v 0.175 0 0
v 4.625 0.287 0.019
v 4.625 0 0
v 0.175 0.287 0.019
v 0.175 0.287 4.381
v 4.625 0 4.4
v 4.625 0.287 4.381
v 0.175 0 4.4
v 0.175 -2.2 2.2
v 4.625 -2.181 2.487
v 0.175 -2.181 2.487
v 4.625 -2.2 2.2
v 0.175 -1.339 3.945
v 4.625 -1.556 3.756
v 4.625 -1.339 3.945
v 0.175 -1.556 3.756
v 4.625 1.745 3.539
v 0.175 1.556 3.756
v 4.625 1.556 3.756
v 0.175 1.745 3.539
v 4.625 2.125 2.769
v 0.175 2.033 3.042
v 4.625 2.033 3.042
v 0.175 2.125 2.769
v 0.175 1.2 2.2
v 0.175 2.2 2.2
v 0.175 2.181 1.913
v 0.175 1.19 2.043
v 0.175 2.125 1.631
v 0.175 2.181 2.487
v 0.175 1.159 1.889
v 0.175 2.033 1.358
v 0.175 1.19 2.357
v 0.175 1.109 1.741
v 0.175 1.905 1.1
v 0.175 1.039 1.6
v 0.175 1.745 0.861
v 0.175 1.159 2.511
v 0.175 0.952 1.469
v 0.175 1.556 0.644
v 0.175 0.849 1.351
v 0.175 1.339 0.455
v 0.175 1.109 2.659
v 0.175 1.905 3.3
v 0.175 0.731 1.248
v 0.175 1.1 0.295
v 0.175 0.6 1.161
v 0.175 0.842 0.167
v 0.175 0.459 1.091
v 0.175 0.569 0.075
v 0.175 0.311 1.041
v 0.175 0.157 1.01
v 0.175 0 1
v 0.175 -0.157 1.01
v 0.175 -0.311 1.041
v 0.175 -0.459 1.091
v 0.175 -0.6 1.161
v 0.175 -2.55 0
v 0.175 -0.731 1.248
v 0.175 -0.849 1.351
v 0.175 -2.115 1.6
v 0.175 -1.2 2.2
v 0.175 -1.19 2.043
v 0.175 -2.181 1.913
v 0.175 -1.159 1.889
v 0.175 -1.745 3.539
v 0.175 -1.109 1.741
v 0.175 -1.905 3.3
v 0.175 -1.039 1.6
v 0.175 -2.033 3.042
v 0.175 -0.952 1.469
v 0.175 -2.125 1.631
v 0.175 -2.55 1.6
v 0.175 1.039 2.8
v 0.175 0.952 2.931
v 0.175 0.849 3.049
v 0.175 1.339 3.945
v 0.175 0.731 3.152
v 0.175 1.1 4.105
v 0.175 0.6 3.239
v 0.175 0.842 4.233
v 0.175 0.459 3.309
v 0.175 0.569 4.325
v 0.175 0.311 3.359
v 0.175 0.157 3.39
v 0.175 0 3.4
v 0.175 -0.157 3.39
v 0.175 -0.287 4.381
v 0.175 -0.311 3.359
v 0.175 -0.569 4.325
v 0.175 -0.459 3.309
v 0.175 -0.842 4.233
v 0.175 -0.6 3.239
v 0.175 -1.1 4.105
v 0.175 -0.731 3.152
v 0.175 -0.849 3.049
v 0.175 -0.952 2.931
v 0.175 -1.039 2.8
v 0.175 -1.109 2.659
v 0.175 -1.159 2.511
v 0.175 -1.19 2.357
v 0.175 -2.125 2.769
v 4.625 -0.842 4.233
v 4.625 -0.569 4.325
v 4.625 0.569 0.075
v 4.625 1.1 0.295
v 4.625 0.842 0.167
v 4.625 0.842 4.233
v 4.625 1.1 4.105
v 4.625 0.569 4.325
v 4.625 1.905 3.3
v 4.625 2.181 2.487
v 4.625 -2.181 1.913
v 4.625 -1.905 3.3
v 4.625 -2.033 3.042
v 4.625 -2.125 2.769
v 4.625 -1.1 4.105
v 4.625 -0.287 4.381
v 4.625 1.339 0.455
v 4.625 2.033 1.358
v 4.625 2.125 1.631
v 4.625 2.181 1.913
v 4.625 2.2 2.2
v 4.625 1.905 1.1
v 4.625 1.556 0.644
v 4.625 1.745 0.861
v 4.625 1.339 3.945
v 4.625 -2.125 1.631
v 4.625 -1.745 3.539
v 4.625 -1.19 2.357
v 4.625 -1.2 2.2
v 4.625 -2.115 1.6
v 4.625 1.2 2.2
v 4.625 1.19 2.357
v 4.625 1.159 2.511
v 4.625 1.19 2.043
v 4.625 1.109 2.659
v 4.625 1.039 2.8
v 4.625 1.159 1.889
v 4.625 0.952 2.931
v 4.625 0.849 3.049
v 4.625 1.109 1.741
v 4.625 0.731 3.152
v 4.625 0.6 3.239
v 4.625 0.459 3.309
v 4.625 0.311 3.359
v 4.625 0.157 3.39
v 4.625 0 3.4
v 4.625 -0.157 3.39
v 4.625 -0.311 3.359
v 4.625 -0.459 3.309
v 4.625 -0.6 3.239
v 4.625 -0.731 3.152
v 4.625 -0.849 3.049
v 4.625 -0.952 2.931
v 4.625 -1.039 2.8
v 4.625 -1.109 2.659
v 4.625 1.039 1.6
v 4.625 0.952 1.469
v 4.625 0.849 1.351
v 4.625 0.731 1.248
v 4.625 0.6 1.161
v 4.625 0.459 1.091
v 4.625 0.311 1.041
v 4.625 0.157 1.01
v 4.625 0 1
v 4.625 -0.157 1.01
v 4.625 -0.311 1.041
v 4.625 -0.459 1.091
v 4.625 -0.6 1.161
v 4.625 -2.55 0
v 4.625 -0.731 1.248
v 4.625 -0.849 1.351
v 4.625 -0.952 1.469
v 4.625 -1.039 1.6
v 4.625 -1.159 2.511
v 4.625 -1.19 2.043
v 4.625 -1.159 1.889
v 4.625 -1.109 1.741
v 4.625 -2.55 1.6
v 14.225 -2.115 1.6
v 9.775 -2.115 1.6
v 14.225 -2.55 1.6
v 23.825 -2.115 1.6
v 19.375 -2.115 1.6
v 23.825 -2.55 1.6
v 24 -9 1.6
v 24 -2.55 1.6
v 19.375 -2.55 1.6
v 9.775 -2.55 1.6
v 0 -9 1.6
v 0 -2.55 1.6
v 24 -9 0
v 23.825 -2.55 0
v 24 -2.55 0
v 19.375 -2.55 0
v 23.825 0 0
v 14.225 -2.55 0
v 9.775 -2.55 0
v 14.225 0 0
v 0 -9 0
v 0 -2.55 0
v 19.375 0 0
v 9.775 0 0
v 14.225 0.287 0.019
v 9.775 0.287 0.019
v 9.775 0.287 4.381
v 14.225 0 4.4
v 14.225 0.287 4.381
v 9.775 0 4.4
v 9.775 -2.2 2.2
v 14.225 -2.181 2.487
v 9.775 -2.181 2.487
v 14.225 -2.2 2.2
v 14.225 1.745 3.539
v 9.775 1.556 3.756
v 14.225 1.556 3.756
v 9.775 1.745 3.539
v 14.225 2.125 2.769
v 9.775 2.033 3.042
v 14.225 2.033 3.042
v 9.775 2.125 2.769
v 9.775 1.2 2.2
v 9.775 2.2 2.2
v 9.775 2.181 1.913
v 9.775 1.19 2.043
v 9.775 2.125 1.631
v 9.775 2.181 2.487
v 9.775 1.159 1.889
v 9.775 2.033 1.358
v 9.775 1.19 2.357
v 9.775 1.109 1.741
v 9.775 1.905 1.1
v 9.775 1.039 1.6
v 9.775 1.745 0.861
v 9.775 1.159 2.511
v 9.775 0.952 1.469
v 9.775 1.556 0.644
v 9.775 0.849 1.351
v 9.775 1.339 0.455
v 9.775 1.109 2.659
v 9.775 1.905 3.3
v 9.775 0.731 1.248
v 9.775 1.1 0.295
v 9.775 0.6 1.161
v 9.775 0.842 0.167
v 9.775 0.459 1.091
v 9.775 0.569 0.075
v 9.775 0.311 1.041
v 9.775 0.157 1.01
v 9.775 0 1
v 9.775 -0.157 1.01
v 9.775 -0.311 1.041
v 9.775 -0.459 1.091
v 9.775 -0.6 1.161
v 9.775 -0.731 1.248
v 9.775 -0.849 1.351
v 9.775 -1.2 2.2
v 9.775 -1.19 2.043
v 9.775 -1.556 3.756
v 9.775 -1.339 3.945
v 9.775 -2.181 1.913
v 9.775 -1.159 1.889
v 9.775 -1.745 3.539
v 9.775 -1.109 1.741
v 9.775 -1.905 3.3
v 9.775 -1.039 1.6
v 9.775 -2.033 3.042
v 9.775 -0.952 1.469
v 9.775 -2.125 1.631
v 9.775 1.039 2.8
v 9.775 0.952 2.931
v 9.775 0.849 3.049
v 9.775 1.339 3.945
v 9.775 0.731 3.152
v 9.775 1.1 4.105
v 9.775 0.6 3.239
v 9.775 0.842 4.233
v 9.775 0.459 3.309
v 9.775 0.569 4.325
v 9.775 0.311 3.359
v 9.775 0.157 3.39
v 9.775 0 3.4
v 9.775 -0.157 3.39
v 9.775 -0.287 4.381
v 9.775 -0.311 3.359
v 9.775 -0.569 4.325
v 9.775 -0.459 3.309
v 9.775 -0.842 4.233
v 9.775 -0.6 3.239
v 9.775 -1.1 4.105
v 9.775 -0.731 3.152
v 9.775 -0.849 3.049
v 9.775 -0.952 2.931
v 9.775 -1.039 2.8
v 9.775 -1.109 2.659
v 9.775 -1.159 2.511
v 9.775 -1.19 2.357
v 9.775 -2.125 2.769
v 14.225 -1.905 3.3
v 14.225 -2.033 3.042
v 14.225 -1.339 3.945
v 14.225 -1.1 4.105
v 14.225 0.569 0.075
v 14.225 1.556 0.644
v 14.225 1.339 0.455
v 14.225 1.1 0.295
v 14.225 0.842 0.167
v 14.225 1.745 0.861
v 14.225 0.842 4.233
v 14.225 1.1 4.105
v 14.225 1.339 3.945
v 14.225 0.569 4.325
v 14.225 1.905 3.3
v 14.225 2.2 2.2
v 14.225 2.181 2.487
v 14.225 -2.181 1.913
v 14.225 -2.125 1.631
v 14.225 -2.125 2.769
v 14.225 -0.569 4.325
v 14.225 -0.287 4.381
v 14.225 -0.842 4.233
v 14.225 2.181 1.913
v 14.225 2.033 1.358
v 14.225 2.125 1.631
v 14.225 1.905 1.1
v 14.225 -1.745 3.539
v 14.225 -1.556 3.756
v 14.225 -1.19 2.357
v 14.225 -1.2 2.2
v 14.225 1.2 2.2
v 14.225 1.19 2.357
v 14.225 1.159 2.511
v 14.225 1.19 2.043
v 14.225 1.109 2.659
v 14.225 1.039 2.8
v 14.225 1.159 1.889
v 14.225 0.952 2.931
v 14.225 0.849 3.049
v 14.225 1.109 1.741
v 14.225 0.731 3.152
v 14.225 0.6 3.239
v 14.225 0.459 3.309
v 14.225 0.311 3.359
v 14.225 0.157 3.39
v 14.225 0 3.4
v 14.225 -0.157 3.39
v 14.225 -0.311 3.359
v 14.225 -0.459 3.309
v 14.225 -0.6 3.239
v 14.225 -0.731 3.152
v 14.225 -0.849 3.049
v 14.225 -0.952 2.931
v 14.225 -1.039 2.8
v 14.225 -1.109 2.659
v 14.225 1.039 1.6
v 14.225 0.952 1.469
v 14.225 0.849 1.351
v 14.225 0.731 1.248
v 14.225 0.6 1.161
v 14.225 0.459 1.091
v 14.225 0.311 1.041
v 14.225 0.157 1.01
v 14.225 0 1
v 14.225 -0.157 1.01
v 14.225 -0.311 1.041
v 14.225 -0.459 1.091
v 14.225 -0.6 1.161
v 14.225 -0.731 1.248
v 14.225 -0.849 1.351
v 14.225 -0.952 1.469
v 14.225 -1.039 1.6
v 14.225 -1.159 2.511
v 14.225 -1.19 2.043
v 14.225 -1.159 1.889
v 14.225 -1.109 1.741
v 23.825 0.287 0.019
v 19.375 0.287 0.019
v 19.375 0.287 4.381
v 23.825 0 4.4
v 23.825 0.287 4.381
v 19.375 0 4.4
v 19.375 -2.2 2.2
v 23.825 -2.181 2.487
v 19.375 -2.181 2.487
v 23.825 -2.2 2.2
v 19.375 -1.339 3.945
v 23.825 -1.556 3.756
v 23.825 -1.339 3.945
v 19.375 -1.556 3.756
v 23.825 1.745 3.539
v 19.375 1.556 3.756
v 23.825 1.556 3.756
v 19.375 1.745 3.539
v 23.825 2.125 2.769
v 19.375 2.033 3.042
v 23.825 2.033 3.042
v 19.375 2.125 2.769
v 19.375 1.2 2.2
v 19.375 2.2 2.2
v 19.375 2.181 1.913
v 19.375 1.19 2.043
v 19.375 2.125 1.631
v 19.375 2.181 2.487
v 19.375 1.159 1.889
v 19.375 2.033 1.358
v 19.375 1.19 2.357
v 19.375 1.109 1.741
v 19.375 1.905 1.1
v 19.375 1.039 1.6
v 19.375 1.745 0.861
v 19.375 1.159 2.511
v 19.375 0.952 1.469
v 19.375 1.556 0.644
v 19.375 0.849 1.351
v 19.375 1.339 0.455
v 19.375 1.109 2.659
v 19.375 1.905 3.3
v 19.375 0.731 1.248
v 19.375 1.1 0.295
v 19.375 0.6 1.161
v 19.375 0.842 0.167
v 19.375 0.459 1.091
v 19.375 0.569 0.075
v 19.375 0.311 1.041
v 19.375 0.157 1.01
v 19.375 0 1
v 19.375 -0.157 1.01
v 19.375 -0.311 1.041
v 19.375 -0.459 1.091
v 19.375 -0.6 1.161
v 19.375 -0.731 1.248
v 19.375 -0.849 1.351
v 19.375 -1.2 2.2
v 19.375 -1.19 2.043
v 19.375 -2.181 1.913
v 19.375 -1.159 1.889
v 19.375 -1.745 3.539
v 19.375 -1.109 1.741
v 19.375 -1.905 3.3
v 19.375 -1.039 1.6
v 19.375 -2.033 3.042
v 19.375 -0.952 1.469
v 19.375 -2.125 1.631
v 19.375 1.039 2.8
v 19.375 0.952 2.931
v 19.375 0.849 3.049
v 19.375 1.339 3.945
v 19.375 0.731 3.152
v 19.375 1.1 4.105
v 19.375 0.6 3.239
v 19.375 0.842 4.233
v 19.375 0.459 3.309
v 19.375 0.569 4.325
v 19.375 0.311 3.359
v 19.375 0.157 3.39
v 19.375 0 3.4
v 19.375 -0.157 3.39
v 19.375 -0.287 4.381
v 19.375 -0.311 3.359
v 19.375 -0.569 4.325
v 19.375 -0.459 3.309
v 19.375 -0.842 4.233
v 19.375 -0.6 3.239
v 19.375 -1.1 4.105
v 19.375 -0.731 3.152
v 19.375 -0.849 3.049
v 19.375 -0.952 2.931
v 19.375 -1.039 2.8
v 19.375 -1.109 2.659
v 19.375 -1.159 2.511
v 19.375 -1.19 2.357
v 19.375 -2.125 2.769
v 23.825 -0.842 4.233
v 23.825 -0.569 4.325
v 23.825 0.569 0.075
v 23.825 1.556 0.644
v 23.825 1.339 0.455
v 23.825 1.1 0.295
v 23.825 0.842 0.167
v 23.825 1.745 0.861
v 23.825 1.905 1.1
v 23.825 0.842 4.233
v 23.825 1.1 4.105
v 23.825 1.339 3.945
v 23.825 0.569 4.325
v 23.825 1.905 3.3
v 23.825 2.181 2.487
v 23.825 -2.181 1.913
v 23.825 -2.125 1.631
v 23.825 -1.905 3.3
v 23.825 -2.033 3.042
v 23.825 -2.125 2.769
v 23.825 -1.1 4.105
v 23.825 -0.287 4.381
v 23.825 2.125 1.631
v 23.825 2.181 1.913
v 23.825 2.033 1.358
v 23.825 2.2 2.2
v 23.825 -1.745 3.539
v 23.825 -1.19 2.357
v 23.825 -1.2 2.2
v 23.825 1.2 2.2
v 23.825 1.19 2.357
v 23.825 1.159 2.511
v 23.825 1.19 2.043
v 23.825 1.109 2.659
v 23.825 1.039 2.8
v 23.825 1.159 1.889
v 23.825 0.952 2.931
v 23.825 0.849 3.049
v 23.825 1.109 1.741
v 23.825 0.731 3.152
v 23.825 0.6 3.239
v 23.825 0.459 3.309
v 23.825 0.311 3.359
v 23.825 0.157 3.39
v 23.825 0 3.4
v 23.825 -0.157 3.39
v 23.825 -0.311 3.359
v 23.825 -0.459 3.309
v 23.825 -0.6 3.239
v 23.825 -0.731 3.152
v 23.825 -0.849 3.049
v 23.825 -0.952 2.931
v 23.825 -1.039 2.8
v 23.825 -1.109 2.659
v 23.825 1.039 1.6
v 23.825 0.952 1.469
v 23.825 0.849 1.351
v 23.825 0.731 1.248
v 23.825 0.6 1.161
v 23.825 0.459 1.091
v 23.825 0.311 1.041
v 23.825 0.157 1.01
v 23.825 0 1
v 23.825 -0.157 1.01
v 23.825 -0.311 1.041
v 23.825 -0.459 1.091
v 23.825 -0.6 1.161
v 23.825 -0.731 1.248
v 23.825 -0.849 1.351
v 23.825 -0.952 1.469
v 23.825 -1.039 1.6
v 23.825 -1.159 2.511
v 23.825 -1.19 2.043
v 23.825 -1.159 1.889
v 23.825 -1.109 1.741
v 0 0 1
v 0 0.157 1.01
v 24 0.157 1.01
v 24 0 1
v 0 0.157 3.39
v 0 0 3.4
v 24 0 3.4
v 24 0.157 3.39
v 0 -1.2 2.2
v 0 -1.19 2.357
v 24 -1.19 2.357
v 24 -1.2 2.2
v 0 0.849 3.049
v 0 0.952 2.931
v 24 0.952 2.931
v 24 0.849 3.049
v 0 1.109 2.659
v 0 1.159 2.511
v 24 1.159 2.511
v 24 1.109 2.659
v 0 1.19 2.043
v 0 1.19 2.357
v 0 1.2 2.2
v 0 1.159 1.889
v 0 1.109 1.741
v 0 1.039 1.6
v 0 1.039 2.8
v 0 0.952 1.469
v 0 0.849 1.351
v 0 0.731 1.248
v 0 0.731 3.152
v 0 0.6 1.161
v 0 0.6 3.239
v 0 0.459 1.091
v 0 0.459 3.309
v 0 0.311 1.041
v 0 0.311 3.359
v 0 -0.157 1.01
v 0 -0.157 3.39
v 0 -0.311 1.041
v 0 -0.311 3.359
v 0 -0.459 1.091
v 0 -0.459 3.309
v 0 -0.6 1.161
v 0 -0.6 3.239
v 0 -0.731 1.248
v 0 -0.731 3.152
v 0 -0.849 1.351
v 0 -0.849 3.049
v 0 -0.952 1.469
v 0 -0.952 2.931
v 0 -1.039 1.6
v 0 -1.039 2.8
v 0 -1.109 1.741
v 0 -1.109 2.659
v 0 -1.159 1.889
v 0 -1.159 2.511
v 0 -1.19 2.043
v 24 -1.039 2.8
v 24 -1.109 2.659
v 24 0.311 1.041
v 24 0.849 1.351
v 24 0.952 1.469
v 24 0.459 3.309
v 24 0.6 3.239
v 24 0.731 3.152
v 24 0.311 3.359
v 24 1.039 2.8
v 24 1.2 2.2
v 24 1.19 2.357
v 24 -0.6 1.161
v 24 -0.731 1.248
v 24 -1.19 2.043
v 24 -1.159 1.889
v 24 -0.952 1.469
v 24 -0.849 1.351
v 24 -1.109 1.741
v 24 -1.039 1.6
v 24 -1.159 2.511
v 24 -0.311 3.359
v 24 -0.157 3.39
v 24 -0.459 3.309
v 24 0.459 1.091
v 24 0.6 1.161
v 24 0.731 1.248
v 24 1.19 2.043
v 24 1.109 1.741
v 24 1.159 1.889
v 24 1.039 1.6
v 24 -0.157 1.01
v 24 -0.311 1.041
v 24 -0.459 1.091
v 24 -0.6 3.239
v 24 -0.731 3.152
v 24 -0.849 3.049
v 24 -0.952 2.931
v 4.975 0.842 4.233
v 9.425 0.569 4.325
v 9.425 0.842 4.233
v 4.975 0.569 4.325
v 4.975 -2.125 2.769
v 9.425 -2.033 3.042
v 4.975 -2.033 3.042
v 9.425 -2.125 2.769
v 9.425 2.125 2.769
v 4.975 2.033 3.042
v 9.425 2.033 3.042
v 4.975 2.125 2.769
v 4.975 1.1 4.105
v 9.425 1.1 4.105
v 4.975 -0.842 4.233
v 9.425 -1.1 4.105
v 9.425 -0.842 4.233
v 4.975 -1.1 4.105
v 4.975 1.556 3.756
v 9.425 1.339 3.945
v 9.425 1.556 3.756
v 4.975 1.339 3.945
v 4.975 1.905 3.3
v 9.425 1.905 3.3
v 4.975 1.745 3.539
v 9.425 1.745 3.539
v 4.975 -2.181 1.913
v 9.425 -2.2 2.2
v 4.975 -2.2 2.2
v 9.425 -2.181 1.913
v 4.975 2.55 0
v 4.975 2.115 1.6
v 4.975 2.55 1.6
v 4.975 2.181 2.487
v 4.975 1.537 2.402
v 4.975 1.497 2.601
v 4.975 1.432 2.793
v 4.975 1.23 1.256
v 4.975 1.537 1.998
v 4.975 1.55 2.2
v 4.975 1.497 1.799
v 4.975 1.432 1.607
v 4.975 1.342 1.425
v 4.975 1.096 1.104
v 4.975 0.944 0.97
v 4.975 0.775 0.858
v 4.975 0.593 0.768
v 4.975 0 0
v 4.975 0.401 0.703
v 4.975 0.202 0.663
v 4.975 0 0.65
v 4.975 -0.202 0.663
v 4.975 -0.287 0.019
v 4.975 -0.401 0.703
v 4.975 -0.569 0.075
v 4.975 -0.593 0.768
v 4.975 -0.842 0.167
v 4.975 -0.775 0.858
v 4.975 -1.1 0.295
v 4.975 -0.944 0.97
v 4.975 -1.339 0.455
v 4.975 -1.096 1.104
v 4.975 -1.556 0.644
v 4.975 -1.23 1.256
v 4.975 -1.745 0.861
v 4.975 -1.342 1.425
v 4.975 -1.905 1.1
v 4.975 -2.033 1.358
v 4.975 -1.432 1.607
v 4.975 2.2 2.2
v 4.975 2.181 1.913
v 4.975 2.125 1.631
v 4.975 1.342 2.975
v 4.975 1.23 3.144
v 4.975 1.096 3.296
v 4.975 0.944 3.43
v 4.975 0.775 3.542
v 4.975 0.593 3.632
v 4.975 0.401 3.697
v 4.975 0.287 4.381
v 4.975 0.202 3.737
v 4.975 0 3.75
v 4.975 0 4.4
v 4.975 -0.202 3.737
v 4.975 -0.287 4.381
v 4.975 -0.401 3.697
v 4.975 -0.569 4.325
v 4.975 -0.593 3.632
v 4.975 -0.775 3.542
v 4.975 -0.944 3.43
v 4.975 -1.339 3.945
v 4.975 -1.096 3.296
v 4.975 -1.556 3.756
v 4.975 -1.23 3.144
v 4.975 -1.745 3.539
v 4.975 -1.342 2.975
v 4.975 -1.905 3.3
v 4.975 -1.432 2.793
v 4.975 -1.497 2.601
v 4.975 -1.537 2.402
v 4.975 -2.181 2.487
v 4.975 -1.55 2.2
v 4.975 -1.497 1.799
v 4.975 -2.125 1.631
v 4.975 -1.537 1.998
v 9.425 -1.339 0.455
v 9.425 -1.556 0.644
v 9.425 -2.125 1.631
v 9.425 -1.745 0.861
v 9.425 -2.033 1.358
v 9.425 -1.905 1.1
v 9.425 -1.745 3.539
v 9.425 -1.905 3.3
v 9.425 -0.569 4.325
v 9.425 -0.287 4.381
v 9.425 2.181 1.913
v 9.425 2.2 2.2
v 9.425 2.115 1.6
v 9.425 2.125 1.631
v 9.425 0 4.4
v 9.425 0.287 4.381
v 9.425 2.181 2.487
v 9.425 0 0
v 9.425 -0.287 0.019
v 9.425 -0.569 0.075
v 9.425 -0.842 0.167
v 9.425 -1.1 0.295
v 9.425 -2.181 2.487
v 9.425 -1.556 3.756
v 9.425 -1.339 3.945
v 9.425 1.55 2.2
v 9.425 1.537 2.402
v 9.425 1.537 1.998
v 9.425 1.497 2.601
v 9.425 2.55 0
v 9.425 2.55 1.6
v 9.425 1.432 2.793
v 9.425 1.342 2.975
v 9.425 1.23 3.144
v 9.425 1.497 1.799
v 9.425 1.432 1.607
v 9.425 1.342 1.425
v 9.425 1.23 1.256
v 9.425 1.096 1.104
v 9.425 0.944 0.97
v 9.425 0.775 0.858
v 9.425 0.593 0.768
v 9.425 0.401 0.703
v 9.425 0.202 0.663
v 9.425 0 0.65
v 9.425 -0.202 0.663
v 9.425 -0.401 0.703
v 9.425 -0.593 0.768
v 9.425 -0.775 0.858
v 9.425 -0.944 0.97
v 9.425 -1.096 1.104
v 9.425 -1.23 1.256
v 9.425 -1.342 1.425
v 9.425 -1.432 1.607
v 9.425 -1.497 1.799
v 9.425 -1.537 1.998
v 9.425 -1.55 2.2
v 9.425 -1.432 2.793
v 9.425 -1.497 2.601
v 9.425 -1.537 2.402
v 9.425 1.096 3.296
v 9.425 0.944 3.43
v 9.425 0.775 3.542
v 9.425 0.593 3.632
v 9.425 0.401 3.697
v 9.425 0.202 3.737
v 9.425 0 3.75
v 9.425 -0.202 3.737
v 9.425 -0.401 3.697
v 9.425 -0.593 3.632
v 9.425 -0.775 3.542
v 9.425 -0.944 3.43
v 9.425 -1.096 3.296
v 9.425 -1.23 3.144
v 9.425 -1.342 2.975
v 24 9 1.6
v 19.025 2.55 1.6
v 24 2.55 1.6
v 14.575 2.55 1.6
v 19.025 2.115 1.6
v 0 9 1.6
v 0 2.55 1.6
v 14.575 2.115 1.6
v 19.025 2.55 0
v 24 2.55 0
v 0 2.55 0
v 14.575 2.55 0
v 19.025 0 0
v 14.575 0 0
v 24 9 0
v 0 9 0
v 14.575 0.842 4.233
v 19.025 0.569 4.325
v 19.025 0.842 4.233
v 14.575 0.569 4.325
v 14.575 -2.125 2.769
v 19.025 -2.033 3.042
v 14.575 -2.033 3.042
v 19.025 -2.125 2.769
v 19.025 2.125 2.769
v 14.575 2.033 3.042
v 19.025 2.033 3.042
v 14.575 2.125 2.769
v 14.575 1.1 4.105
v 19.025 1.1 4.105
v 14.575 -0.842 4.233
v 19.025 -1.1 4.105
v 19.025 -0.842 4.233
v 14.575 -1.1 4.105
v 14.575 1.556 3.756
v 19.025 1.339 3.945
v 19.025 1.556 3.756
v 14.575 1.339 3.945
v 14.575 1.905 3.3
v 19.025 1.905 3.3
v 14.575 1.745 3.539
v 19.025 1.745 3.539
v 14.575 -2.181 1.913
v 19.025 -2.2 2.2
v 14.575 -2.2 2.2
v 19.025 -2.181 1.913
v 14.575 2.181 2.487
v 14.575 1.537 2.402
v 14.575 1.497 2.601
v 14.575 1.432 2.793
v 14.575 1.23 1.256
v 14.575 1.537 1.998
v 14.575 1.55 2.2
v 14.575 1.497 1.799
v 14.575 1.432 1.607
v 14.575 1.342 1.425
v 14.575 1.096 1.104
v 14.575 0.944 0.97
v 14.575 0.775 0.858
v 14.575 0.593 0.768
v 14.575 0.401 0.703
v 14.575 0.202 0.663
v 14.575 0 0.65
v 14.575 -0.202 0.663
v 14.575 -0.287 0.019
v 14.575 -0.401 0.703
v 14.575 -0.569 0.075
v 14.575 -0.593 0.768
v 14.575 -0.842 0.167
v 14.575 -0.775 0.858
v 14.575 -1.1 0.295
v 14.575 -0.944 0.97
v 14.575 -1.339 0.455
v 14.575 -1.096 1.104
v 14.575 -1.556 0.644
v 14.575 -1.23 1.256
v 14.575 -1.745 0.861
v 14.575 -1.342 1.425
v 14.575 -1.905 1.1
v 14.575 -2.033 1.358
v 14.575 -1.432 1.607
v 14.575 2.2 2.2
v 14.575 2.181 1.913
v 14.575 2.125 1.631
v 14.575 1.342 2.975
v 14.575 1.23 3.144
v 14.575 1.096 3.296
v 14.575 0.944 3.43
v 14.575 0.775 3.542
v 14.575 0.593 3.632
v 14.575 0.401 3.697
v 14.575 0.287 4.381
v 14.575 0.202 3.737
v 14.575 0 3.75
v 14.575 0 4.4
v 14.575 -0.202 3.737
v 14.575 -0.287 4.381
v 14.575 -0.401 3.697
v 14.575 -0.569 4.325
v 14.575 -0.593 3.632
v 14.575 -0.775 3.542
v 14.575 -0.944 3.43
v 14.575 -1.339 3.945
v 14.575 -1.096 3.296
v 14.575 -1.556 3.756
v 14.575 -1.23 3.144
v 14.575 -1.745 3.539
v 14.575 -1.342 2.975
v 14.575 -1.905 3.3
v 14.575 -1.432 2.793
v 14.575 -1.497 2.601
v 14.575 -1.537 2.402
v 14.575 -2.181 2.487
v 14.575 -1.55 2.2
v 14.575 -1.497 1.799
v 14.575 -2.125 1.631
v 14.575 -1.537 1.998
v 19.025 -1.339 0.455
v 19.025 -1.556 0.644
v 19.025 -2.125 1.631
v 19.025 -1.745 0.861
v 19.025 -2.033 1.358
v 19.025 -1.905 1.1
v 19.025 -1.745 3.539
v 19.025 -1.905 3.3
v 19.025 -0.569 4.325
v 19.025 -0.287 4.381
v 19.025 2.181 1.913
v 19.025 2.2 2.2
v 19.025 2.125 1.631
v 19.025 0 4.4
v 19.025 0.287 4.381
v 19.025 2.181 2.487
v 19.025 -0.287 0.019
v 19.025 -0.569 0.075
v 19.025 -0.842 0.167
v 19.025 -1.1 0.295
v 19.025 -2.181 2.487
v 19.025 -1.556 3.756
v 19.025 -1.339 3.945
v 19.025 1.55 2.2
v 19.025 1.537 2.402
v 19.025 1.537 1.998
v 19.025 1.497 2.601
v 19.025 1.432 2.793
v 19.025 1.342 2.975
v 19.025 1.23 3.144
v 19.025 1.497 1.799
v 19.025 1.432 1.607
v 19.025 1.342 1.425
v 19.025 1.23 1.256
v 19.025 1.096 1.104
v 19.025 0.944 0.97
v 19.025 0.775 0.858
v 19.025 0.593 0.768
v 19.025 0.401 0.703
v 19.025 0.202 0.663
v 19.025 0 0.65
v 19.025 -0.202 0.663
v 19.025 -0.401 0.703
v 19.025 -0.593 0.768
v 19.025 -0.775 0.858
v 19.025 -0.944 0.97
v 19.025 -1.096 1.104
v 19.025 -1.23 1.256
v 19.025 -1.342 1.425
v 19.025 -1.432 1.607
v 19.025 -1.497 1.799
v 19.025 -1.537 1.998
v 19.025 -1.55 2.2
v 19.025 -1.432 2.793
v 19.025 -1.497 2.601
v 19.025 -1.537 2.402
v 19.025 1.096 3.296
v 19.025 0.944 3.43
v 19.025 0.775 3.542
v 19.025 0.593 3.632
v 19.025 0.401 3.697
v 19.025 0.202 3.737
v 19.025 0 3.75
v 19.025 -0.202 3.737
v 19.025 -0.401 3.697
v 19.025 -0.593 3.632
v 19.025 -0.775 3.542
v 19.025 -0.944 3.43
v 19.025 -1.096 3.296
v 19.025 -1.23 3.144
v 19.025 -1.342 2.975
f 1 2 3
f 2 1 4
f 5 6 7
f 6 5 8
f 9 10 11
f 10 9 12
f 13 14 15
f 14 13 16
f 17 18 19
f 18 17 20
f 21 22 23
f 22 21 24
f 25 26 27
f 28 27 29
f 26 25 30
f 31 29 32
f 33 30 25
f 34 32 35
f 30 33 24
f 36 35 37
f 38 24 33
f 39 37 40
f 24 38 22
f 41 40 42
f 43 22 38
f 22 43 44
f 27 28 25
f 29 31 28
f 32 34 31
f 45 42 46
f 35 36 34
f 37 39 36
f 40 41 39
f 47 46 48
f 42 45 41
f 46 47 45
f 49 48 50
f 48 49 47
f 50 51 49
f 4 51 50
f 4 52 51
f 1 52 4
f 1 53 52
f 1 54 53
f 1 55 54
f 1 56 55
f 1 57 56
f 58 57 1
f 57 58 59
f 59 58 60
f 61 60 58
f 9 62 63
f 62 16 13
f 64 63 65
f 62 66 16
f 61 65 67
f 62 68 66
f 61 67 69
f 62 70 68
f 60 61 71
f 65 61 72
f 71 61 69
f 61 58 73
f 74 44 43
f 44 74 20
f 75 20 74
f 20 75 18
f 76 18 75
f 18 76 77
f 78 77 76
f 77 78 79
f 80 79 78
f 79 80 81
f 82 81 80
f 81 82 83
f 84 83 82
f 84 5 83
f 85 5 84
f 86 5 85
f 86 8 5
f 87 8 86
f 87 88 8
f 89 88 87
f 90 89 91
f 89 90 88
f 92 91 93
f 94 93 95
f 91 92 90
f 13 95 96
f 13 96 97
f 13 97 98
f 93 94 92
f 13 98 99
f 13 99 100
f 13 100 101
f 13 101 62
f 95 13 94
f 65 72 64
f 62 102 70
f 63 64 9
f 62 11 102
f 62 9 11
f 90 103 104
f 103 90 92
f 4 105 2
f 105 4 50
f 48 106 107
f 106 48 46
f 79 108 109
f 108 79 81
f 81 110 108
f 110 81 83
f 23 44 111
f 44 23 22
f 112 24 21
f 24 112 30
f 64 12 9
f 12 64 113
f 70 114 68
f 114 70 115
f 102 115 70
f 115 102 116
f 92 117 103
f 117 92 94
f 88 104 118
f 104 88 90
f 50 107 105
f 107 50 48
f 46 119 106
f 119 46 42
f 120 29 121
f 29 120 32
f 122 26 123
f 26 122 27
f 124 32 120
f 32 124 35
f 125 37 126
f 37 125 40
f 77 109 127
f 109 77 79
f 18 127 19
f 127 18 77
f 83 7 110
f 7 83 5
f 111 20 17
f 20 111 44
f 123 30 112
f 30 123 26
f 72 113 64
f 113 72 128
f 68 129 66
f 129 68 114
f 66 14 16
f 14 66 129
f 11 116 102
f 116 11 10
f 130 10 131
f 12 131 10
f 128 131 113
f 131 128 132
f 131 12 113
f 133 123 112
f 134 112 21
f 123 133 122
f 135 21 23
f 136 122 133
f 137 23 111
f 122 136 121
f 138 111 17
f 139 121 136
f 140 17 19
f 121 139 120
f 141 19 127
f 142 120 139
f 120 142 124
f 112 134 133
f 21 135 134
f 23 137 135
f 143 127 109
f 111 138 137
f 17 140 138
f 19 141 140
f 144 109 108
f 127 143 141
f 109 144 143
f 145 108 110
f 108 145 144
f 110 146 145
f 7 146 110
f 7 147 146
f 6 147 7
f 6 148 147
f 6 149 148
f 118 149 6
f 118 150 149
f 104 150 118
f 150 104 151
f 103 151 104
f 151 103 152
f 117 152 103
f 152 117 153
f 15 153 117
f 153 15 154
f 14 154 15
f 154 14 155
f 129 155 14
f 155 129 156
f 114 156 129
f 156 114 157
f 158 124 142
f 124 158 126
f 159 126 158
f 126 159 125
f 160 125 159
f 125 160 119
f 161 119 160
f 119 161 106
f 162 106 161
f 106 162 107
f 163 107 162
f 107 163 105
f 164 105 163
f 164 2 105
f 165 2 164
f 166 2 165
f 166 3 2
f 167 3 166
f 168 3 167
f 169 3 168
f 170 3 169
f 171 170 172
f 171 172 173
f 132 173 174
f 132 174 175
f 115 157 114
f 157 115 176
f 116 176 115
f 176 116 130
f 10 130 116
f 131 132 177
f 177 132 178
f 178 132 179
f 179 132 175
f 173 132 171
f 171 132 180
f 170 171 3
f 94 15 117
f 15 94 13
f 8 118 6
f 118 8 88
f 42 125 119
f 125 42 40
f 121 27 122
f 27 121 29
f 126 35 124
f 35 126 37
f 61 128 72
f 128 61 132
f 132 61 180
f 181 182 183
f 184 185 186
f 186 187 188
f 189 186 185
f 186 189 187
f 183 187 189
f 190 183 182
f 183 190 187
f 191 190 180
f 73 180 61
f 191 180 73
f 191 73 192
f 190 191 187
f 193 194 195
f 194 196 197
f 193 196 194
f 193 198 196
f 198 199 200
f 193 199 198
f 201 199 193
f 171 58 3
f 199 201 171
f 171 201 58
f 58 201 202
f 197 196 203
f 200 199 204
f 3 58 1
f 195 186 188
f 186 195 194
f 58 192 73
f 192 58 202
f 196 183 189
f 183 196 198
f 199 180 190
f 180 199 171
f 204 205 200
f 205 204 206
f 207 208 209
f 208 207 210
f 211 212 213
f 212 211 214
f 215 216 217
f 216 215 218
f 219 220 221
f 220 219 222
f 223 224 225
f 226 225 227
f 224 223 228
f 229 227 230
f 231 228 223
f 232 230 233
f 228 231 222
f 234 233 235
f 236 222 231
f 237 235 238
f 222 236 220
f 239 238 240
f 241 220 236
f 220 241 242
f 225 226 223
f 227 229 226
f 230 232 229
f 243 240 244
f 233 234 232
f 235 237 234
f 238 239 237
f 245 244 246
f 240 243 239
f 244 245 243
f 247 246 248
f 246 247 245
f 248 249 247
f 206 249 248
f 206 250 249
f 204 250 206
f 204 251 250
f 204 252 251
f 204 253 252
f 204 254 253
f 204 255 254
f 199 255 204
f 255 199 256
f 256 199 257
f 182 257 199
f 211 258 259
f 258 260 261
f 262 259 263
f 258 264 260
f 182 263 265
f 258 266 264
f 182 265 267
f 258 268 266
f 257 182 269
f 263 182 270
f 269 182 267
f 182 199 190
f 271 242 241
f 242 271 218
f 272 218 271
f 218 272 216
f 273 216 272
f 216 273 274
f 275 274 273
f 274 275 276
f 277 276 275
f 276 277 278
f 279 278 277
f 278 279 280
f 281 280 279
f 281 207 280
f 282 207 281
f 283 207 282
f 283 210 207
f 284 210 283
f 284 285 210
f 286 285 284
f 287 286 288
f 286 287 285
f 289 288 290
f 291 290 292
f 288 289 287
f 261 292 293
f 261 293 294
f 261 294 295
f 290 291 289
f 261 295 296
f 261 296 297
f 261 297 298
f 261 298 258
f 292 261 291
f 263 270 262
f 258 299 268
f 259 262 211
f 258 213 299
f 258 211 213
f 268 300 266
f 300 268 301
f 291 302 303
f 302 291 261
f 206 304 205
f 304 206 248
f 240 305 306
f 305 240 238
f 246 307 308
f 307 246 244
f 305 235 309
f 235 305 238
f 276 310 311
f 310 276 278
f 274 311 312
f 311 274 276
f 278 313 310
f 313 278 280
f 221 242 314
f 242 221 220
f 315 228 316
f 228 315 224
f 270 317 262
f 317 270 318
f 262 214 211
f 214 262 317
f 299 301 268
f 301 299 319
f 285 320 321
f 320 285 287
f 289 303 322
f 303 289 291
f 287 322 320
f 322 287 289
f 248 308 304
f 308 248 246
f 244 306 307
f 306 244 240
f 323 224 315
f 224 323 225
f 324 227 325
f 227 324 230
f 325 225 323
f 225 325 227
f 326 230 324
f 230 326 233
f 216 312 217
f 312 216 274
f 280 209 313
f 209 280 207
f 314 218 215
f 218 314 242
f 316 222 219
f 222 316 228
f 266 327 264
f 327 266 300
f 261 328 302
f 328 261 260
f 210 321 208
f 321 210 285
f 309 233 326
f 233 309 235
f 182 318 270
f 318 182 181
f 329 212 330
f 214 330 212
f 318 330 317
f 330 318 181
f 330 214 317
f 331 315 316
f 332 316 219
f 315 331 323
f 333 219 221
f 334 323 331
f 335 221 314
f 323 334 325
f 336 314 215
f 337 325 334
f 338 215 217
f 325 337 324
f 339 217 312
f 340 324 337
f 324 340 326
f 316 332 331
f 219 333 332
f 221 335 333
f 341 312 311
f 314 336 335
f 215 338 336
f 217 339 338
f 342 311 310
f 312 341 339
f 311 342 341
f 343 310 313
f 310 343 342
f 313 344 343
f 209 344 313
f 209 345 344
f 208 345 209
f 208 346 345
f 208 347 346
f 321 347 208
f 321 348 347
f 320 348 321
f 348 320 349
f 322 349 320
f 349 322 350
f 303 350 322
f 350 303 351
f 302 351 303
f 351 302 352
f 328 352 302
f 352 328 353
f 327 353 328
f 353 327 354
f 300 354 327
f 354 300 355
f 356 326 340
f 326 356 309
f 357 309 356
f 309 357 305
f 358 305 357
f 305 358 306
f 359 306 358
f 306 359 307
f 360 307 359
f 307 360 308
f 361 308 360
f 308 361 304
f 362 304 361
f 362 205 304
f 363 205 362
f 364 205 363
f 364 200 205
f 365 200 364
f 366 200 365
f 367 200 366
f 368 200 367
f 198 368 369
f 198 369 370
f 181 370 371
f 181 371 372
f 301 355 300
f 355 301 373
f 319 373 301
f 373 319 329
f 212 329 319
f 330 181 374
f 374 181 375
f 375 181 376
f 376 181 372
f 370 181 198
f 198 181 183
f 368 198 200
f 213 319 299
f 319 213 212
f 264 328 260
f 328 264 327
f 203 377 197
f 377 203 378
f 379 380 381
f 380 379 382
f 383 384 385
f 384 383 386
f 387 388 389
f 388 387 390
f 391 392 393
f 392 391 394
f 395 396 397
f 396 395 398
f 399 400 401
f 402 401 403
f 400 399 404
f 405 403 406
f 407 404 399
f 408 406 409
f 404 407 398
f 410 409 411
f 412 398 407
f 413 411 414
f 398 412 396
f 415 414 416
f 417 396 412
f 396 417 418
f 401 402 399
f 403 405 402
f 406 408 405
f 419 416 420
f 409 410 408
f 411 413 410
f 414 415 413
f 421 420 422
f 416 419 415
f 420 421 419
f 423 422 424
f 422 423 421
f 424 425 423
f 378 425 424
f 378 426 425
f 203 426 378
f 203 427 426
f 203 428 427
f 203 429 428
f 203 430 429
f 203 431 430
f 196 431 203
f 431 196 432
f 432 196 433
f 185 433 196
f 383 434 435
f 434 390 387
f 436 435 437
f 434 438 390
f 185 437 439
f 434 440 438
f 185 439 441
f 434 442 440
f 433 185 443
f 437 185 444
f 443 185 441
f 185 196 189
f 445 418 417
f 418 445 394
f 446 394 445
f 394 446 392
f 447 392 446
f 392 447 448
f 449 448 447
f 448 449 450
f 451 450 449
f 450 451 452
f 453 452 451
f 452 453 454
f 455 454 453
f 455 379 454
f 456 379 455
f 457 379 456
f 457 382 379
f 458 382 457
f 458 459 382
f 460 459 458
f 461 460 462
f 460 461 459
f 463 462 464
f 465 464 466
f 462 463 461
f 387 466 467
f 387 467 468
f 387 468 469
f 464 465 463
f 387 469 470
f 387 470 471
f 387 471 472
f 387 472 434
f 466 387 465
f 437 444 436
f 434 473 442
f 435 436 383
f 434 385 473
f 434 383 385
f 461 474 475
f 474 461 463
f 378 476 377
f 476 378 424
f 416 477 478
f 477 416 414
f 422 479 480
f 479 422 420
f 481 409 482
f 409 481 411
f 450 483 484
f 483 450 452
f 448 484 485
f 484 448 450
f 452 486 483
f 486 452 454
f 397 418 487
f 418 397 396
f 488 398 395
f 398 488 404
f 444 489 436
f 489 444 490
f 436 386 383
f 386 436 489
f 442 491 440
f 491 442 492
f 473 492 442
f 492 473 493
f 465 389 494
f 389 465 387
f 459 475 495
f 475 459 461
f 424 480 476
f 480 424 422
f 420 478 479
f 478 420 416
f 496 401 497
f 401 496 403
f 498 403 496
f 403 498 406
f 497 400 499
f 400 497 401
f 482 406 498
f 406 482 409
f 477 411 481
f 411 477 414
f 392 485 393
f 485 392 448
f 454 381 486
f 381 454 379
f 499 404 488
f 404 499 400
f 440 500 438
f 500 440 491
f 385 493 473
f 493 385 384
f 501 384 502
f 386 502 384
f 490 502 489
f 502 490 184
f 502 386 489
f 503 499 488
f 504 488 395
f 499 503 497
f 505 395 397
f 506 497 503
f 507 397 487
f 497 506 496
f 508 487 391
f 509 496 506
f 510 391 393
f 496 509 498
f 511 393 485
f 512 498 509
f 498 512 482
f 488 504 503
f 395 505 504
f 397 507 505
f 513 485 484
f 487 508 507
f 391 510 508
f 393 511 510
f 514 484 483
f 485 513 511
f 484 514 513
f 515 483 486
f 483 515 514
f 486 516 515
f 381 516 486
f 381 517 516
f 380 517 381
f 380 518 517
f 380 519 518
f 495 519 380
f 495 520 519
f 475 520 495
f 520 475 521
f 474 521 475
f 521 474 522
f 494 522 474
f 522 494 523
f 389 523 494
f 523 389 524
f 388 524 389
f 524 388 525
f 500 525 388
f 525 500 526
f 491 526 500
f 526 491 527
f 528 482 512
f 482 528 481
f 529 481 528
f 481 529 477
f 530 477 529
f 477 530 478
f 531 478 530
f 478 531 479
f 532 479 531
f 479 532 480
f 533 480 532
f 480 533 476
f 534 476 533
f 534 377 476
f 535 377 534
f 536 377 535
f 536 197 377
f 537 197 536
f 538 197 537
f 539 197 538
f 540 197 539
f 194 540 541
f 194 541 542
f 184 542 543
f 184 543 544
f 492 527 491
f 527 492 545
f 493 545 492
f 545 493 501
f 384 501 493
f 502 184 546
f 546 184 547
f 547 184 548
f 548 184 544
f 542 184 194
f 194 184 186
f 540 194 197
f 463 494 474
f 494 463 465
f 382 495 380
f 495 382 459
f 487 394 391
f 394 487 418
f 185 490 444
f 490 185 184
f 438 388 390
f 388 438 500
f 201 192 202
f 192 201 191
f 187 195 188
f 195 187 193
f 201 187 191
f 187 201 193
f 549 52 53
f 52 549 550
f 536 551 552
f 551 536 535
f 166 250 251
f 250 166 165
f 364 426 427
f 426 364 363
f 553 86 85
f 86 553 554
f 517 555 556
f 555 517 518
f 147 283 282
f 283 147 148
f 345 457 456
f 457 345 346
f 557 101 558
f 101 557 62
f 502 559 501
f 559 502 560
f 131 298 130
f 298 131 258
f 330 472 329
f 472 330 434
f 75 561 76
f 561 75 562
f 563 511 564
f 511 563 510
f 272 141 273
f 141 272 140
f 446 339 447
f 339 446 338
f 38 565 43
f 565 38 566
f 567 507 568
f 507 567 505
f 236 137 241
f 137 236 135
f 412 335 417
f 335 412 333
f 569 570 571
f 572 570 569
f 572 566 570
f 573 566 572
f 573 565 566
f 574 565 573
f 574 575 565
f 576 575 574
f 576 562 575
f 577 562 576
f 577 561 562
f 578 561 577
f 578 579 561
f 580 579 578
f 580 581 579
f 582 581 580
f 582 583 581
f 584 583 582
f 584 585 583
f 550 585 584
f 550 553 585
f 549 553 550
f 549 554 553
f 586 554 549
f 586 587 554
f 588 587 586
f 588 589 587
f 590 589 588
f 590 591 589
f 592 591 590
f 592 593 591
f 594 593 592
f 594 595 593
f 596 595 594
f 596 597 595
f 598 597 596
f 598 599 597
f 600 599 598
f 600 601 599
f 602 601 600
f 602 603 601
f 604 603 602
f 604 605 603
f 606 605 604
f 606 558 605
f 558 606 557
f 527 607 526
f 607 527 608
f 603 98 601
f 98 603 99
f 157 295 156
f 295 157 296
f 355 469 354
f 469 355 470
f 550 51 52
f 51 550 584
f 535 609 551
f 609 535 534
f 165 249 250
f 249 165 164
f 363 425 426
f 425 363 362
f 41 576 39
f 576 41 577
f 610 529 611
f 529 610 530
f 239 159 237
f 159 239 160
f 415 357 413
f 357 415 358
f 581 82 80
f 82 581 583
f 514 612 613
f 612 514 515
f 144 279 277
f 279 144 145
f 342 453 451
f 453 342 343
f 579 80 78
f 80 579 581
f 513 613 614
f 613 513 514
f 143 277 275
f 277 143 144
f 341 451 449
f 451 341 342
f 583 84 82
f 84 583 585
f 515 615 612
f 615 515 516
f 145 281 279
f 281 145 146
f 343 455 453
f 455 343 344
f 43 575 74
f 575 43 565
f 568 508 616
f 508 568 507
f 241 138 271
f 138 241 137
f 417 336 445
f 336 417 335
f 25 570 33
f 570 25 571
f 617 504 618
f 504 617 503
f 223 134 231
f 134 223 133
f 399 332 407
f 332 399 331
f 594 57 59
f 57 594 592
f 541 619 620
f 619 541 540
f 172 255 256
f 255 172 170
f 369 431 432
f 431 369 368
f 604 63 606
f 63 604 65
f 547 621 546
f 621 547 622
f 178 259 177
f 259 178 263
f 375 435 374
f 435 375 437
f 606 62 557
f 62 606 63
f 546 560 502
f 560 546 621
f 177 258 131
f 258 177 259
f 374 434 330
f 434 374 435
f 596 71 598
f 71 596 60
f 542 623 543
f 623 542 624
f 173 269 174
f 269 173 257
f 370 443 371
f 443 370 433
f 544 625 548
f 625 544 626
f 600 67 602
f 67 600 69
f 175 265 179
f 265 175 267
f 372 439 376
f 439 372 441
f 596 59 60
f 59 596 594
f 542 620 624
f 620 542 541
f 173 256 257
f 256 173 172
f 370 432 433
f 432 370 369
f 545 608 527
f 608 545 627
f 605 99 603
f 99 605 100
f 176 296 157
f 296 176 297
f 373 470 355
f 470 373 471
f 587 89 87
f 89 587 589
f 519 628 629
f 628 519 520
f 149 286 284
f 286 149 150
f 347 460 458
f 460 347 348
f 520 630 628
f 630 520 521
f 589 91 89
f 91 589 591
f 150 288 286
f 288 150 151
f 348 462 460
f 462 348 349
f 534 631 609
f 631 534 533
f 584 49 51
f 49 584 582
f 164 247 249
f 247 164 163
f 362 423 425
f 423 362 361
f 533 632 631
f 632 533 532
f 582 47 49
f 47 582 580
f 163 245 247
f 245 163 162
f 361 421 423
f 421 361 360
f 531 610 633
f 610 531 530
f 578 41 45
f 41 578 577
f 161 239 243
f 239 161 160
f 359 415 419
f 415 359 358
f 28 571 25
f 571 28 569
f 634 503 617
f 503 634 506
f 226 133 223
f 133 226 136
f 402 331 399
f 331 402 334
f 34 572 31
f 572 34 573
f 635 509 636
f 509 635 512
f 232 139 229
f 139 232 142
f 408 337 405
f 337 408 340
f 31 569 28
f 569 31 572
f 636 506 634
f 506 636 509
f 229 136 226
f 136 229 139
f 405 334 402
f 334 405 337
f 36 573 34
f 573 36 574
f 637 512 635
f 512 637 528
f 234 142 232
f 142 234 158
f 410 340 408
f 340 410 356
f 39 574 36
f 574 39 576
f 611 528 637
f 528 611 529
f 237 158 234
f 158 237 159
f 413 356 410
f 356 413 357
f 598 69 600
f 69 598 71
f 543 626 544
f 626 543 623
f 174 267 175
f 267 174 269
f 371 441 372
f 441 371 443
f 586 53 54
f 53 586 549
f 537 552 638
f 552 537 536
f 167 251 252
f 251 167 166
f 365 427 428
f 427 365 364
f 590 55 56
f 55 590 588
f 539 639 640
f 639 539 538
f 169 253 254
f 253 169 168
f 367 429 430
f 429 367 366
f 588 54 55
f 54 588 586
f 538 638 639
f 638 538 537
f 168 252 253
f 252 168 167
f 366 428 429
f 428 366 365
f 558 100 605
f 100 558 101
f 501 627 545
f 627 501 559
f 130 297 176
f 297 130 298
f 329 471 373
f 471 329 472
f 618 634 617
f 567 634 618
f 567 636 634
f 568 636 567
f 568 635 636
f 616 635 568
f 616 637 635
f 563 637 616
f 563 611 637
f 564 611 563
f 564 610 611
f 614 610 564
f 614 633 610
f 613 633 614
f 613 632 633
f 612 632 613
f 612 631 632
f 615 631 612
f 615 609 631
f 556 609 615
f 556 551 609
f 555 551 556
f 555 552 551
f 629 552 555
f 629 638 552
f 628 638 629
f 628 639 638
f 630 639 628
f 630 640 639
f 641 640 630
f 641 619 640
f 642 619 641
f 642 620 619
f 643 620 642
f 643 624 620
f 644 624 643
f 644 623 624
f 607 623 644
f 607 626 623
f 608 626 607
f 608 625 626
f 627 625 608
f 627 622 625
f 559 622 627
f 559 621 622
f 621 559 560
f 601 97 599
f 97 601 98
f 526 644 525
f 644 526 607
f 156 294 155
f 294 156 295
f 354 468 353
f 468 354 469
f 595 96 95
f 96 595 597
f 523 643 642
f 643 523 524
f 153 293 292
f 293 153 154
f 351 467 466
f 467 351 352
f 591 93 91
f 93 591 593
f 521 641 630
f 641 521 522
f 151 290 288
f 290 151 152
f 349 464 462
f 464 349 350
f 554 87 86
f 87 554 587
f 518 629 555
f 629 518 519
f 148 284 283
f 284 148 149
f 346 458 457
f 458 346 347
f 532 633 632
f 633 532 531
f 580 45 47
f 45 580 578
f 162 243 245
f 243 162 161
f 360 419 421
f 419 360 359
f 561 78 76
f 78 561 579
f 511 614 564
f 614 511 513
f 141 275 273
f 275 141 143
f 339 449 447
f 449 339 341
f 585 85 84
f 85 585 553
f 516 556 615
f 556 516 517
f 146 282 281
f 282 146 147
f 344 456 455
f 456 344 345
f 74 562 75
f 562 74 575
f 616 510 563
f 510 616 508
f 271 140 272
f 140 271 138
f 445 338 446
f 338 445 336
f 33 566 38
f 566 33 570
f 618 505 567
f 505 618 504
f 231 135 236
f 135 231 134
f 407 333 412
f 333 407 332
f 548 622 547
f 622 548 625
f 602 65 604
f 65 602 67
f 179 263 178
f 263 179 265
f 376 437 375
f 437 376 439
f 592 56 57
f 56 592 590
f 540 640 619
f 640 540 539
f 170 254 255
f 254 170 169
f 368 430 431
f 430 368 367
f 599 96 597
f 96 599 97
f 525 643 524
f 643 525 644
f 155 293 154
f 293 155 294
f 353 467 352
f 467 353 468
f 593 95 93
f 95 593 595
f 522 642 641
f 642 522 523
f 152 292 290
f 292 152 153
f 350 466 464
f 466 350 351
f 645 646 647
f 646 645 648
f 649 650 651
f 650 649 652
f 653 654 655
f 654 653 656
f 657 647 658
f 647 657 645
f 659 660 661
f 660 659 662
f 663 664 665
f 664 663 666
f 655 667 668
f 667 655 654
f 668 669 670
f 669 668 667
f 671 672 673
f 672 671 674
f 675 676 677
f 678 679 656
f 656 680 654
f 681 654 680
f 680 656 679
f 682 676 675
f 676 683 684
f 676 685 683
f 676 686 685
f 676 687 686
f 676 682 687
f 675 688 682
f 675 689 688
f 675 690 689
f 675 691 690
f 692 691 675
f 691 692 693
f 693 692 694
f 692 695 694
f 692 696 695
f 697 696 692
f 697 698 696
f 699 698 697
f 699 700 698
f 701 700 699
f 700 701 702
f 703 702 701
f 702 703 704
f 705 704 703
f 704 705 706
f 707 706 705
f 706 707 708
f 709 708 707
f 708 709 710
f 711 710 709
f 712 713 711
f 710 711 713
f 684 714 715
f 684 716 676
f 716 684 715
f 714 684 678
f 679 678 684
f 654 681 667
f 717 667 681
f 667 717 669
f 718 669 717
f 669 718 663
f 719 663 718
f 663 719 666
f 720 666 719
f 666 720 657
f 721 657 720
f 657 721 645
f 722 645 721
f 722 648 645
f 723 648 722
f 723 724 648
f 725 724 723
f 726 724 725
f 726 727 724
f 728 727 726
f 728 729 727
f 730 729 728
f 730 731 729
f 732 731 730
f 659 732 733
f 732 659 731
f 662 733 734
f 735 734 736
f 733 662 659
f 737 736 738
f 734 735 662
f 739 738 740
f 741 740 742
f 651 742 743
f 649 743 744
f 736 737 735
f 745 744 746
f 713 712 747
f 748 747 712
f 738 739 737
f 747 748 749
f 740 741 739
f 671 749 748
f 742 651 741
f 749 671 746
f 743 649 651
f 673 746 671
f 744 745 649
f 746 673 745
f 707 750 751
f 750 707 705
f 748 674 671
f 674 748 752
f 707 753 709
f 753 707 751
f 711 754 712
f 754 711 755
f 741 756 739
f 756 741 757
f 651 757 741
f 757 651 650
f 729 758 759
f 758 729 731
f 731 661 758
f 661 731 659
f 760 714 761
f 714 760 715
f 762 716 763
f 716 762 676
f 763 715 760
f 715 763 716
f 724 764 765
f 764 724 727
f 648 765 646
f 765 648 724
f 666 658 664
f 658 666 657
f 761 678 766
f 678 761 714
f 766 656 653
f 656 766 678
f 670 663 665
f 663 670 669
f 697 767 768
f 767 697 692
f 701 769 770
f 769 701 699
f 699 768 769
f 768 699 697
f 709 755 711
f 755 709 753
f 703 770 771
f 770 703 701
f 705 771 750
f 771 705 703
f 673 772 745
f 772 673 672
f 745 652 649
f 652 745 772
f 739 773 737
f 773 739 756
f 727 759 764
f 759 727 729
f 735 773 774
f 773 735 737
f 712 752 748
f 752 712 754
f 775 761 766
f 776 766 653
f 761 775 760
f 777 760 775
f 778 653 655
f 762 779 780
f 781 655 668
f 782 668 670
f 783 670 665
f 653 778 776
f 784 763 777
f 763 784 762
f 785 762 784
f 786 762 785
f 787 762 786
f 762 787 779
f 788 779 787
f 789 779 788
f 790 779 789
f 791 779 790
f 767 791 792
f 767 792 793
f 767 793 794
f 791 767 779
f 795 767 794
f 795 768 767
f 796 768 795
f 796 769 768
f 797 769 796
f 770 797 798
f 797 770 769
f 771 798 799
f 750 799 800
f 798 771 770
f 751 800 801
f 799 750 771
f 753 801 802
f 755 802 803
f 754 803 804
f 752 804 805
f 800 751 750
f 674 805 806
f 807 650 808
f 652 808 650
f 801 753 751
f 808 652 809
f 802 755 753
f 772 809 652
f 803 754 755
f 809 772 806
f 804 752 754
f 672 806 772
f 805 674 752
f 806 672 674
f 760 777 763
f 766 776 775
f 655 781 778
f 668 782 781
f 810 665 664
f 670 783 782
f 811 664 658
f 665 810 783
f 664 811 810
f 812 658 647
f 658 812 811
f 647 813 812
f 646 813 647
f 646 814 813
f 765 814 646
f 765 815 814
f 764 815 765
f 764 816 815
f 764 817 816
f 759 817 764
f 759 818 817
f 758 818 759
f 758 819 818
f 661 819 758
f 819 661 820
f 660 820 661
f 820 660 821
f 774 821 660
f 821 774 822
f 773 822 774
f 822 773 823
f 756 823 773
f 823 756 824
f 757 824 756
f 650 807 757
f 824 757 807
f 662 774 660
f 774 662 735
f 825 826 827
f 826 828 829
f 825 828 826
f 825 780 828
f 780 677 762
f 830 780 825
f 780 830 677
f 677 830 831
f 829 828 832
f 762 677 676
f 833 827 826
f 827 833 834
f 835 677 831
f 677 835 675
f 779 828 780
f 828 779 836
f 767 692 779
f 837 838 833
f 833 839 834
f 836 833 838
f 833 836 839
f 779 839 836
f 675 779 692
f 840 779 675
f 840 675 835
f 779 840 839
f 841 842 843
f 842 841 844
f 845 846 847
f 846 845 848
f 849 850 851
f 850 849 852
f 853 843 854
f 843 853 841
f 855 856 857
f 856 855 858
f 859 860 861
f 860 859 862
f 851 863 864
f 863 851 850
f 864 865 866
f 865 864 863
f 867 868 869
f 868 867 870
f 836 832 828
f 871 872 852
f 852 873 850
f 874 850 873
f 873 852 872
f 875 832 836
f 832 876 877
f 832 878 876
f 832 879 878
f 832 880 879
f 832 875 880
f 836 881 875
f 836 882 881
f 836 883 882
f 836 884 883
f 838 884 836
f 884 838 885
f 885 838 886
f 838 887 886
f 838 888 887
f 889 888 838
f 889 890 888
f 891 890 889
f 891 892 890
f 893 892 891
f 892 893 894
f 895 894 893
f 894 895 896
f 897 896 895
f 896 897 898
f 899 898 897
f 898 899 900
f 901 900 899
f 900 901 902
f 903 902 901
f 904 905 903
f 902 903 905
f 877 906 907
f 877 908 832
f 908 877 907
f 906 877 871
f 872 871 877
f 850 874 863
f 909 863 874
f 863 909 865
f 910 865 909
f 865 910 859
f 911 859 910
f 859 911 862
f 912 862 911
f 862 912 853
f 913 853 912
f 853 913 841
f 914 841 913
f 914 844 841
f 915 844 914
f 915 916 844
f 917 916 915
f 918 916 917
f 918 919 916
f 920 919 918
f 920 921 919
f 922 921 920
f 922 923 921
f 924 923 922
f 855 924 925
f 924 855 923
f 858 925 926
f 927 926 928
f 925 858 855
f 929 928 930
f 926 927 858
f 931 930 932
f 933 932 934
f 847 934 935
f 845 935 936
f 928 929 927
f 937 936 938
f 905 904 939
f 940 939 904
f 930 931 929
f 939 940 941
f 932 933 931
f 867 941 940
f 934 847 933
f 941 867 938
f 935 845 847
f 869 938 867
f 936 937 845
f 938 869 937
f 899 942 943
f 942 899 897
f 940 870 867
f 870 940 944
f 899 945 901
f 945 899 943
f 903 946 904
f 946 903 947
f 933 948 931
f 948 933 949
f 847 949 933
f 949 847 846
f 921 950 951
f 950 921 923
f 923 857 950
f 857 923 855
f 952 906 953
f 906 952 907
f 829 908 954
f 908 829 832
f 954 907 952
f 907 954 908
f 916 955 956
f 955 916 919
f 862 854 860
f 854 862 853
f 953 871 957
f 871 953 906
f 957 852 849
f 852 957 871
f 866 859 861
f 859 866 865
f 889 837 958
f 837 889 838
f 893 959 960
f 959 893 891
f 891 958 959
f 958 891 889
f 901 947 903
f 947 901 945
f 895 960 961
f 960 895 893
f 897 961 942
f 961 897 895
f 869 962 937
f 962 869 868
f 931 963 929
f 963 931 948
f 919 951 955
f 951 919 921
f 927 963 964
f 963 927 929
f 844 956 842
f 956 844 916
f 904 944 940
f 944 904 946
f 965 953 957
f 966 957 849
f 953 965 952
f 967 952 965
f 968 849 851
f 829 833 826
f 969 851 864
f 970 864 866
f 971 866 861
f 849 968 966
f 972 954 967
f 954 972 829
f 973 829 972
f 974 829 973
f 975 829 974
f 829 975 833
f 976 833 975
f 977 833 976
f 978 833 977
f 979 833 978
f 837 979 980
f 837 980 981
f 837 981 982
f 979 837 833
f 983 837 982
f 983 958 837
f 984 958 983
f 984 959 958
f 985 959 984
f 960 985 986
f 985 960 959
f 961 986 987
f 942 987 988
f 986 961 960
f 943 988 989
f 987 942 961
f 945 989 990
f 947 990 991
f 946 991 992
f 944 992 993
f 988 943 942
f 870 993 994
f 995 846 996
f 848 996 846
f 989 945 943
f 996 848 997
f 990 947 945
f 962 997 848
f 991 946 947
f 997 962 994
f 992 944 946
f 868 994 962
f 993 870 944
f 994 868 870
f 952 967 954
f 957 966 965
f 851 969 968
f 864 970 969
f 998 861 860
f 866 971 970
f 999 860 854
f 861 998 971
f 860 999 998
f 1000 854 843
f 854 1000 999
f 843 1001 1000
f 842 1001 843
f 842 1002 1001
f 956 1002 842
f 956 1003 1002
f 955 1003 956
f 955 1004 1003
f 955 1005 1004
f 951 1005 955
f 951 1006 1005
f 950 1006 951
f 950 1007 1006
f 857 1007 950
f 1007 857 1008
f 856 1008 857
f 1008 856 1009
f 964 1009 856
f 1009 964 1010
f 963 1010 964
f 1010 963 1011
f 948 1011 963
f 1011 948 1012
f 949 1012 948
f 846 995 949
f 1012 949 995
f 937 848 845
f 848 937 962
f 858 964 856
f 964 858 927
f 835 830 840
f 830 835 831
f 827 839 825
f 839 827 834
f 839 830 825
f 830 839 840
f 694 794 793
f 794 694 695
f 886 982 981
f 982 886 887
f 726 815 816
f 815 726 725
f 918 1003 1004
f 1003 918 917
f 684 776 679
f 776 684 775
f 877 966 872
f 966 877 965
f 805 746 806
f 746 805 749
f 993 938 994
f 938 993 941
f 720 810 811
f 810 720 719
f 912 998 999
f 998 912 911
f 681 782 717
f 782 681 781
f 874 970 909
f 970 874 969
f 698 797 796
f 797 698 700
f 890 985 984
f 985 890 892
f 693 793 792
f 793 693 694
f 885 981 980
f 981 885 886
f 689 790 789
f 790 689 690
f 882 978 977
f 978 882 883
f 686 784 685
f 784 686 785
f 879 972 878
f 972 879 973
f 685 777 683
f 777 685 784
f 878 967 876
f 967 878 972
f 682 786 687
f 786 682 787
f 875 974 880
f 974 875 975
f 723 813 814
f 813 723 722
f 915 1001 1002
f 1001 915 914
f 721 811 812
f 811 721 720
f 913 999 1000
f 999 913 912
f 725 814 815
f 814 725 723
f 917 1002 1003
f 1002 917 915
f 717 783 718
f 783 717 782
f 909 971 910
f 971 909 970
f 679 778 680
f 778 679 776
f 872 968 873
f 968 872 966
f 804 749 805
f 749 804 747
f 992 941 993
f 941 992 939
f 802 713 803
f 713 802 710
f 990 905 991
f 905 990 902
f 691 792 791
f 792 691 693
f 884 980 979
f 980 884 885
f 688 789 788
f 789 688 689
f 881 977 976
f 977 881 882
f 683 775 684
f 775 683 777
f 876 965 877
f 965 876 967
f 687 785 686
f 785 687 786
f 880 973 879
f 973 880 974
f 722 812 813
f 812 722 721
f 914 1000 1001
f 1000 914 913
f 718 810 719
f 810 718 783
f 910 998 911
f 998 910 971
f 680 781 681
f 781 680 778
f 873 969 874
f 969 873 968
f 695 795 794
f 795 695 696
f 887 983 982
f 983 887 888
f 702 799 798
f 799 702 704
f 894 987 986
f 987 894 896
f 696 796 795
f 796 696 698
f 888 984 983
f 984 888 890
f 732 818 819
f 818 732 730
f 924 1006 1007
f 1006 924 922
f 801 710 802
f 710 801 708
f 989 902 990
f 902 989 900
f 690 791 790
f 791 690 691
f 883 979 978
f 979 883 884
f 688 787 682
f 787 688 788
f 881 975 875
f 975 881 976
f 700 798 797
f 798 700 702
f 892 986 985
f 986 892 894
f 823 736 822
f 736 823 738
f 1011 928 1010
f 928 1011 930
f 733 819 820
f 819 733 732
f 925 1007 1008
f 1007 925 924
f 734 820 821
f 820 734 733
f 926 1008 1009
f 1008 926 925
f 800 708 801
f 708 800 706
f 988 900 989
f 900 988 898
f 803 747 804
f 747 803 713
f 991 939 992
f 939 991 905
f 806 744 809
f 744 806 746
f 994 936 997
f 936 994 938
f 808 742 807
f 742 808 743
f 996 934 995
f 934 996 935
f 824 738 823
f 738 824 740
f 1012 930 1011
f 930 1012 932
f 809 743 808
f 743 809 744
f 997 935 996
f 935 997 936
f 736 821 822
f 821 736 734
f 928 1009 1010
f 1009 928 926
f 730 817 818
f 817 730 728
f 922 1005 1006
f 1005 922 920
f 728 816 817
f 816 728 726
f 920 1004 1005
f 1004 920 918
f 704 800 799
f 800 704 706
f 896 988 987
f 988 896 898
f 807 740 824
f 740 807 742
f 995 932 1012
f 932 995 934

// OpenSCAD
// Sudėtingas modelis tvirtoms dervoms: vyris, spausdinamas surinktas.
// Lapas A turi pilnas kilpas ir ašį, lapas B - kilpas su skyle aplink ašį.
// Tarpas tol ir tarp kilpų, ir aplink ašį. Pavyko = po plovimo ir kietinimo
// vyris prasisuka ranka.
$fn = 48;
tol = 0.35;          // tarpas
R = 2.2;             // kilpos spindulys
L = 24;              // vyrio ilgis
leaf = 9;            // lapo plotis nuo ašies
t = 1.6;             // lapo storis
k = 5;               // kilpų skaičius
pinR = R - 1.0;
s = L / k;
module seg(i) translate([i*s + tol/2, 0, R]) rotate([0, 90, 0]) cylinder(r = R, h = s - tol);
module side(sel, sign) {
  // lapas baigiasi toliau nuo ašies nei svetimos kilpos, prie savų kilpų - jungtys
  translate([0, sign > 0 ? R + tol : -leaf, 0]) cube([L, leaf - R - tol, t]);
  for (i = [0:k-1]) if (i % 2 == sel) {
    seg(i);
    translate([i*s + tol/2, sign > 0 ? 0 : -(R + tol), 0]) cube([s - tol, R + tol, t]);
  }
}
// A: lyginės kilpos pilnos + ašis per visą ilgį
union() { side(0, -1); translate([0, 0, R]) rotate([0, 90, 0]) cylinder(r = pinR, h = L); }
// B: nelyginės kilpos su skyle
difference() { side(1, 1); translate([-1, 0, R]) rotate([0, 90, 0]) cylinder(r = pinR + tol, h = L + 2); }
